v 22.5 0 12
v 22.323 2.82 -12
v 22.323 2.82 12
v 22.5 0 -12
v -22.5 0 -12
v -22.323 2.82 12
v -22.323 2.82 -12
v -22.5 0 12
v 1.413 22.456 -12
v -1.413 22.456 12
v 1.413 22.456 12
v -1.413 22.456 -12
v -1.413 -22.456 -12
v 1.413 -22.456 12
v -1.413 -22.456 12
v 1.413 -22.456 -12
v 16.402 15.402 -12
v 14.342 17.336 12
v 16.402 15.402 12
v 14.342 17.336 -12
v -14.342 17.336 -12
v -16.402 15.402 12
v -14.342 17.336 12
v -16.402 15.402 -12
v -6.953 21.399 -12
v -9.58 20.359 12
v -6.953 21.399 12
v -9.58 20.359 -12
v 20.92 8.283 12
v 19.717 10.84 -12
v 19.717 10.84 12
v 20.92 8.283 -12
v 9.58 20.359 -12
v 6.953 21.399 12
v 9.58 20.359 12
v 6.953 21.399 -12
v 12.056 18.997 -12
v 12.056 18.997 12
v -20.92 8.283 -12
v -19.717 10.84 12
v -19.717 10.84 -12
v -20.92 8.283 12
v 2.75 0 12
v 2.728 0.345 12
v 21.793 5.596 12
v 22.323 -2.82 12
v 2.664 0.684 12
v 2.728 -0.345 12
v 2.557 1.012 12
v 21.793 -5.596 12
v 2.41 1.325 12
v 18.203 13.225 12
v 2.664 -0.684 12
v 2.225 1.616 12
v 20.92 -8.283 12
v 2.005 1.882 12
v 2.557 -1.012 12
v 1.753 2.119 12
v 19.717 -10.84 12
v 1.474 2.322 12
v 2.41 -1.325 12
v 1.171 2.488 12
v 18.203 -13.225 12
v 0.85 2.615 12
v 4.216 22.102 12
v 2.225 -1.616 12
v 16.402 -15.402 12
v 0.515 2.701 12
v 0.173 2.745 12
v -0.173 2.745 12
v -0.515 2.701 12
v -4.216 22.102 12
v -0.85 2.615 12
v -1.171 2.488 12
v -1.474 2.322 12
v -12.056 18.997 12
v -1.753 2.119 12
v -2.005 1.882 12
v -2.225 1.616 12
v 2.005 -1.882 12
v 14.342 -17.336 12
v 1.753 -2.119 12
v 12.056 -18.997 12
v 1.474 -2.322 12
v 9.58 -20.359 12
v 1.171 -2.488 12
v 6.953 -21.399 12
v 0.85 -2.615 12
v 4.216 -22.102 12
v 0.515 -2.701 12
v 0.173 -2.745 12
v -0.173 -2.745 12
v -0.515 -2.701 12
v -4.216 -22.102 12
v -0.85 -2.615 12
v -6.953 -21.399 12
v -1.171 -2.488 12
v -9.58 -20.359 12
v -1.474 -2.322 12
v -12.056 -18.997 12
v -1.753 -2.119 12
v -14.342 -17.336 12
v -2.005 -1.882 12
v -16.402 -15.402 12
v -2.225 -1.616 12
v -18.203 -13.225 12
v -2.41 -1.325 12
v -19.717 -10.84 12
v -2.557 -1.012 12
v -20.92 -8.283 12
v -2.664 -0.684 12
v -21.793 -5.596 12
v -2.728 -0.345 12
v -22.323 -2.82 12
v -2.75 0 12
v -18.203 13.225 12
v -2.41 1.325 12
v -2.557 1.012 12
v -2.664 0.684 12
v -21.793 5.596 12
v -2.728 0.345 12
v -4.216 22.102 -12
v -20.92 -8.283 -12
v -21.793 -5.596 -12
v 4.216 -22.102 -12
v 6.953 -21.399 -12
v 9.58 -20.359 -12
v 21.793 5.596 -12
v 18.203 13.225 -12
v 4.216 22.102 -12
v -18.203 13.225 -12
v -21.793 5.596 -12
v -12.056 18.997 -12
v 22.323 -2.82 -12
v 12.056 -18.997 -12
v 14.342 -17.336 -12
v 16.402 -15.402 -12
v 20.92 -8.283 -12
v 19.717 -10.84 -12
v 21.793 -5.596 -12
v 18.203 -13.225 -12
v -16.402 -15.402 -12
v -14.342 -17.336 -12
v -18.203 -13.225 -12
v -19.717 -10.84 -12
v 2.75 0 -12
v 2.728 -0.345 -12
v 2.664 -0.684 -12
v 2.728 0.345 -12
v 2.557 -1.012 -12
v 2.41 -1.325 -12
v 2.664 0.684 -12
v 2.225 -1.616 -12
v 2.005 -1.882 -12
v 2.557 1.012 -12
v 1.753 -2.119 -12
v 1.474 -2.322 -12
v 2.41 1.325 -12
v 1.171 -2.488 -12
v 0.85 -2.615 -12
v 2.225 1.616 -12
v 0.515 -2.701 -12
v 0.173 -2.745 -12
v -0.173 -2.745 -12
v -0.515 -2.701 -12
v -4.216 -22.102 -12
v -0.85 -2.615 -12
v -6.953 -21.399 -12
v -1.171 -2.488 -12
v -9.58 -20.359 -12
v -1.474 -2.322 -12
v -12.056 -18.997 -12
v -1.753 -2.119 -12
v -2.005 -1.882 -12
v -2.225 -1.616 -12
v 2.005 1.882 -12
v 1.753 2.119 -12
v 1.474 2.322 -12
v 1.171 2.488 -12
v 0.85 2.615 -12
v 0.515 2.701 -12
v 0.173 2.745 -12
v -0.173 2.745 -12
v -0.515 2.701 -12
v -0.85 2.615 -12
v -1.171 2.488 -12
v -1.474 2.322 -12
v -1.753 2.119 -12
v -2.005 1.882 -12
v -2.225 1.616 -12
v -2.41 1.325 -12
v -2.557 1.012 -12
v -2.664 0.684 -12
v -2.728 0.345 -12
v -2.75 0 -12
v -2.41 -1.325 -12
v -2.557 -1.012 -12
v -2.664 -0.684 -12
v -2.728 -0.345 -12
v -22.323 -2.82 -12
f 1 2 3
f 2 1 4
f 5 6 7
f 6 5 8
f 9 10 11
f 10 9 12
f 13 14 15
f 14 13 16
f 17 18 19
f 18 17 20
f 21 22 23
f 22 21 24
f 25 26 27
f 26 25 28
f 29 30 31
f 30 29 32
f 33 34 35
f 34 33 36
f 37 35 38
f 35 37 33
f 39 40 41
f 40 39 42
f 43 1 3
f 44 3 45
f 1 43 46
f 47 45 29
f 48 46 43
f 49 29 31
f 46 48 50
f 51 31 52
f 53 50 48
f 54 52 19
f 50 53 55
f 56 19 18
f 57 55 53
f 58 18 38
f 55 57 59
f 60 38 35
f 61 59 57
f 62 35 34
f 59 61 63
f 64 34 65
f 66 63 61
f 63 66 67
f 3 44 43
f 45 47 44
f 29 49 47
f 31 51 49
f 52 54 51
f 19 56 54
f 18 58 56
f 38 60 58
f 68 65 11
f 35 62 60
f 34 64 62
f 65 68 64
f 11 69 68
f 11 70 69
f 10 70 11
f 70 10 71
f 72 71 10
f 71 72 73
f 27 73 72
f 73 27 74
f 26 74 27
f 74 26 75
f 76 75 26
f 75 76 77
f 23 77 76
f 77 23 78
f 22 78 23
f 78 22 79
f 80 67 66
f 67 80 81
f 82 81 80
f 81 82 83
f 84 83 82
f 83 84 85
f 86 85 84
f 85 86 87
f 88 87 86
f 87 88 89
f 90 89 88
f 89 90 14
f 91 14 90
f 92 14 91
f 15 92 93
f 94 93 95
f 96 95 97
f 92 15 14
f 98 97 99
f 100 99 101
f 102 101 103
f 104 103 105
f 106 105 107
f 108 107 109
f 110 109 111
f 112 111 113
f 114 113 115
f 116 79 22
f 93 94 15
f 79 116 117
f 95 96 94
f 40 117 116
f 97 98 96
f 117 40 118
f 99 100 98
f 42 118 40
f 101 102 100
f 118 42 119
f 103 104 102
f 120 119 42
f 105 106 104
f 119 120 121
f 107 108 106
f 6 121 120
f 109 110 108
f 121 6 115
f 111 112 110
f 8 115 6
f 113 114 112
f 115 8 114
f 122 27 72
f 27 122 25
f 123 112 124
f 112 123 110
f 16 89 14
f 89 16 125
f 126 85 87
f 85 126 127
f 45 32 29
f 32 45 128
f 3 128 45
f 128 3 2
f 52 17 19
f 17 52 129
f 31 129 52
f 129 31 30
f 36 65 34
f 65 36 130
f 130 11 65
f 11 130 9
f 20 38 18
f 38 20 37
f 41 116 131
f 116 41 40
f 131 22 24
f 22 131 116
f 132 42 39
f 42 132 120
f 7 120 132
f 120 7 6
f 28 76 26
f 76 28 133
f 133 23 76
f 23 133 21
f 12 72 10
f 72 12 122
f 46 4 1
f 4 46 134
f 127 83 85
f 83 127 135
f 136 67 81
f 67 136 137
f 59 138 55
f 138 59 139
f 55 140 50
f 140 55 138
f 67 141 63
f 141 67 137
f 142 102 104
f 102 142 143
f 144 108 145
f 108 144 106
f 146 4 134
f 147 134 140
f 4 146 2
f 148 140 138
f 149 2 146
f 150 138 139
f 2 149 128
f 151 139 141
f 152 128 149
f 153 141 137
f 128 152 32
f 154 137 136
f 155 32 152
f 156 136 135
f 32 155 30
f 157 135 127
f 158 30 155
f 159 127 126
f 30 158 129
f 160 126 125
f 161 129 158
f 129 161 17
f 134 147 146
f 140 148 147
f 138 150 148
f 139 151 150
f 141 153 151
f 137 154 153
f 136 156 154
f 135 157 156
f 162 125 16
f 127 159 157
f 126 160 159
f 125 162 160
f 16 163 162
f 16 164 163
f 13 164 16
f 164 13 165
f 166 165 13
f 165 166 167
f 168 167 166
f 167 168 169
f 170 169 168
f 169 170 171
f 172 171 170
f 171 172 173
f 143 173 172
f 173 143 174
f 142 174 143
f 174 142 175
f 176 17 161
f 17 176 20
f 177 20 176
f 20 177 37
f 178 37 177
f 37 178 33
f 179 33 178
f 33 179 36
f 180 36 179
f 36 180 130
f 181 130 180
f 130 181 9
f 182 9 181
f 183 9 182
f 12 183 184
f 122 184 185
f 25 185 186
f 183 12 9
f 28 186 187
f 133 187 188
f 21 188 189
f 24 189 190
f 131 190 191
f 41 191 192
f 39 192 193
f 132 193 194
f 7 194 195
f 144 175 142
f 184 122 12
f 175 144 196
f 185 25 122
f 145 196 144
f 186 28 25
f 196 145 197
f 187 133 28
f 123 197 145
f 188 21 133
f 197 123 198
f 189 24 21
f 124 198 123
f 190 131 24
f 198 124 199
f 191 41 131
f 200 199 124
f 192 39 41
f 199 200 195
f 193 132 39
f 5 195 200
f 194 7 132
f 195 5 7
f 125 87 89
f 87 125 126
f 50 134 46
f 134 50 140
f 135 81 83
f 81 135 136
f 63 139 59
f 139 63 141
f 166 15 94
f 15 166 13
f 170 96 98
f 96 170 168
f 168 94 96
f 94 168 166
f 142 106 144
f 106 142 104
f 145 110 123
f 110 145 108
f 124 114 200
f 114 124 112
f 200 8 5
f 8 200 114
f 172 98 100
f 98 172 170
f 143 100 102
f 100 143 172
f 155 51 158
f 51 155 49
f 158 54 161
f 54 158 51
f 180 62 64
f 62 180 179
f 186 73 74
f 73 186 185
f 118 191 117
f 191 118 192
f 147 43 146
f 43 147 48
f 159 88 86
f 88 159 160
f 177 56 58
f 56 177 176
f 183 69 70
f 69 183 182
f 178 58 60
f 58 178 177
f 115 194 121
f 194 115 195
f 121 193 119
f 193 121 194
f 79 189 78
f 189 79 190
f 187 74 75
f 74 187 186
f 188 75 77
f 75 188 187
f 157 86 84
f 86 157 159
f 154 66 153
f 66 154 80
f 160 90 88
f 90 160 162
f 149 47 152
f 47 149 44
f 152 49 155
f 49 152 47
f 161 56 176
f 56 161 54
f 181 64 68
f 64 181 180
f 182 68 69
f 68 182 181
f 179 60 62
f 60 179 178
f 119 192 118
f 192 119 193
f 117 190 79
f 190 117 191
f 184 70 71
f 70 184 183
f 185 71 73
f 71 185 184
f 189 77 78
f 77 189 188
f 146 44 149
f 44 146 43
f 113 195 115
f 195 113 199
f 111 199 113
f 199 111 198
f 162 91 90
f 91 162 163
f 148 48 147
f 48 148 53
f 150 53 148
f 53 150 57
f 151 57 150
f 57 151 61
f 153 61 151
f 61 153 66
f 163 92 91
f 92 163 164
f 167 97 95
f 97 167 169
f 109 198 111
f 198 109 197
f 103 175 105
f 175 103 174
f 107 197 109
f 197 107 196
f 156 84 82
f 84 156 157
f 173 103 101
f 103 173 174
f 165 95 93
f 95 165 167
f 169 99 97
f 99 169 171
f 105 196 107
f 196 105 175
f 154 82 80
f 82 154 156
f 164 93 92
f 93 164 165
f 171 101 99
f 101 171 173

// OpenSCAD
$fn = 50;


difference() {
	union() {
		translate(v = [0, 0, -12.0000000000]) {
			cylinder(h = 24, r = 22.5000000000);
		}
	}
	union() {
		translate(v = [0, 0, -100.0000000000]) {
			cylinder(h = 200, r = 2.7500000000);
		}
	}
}
